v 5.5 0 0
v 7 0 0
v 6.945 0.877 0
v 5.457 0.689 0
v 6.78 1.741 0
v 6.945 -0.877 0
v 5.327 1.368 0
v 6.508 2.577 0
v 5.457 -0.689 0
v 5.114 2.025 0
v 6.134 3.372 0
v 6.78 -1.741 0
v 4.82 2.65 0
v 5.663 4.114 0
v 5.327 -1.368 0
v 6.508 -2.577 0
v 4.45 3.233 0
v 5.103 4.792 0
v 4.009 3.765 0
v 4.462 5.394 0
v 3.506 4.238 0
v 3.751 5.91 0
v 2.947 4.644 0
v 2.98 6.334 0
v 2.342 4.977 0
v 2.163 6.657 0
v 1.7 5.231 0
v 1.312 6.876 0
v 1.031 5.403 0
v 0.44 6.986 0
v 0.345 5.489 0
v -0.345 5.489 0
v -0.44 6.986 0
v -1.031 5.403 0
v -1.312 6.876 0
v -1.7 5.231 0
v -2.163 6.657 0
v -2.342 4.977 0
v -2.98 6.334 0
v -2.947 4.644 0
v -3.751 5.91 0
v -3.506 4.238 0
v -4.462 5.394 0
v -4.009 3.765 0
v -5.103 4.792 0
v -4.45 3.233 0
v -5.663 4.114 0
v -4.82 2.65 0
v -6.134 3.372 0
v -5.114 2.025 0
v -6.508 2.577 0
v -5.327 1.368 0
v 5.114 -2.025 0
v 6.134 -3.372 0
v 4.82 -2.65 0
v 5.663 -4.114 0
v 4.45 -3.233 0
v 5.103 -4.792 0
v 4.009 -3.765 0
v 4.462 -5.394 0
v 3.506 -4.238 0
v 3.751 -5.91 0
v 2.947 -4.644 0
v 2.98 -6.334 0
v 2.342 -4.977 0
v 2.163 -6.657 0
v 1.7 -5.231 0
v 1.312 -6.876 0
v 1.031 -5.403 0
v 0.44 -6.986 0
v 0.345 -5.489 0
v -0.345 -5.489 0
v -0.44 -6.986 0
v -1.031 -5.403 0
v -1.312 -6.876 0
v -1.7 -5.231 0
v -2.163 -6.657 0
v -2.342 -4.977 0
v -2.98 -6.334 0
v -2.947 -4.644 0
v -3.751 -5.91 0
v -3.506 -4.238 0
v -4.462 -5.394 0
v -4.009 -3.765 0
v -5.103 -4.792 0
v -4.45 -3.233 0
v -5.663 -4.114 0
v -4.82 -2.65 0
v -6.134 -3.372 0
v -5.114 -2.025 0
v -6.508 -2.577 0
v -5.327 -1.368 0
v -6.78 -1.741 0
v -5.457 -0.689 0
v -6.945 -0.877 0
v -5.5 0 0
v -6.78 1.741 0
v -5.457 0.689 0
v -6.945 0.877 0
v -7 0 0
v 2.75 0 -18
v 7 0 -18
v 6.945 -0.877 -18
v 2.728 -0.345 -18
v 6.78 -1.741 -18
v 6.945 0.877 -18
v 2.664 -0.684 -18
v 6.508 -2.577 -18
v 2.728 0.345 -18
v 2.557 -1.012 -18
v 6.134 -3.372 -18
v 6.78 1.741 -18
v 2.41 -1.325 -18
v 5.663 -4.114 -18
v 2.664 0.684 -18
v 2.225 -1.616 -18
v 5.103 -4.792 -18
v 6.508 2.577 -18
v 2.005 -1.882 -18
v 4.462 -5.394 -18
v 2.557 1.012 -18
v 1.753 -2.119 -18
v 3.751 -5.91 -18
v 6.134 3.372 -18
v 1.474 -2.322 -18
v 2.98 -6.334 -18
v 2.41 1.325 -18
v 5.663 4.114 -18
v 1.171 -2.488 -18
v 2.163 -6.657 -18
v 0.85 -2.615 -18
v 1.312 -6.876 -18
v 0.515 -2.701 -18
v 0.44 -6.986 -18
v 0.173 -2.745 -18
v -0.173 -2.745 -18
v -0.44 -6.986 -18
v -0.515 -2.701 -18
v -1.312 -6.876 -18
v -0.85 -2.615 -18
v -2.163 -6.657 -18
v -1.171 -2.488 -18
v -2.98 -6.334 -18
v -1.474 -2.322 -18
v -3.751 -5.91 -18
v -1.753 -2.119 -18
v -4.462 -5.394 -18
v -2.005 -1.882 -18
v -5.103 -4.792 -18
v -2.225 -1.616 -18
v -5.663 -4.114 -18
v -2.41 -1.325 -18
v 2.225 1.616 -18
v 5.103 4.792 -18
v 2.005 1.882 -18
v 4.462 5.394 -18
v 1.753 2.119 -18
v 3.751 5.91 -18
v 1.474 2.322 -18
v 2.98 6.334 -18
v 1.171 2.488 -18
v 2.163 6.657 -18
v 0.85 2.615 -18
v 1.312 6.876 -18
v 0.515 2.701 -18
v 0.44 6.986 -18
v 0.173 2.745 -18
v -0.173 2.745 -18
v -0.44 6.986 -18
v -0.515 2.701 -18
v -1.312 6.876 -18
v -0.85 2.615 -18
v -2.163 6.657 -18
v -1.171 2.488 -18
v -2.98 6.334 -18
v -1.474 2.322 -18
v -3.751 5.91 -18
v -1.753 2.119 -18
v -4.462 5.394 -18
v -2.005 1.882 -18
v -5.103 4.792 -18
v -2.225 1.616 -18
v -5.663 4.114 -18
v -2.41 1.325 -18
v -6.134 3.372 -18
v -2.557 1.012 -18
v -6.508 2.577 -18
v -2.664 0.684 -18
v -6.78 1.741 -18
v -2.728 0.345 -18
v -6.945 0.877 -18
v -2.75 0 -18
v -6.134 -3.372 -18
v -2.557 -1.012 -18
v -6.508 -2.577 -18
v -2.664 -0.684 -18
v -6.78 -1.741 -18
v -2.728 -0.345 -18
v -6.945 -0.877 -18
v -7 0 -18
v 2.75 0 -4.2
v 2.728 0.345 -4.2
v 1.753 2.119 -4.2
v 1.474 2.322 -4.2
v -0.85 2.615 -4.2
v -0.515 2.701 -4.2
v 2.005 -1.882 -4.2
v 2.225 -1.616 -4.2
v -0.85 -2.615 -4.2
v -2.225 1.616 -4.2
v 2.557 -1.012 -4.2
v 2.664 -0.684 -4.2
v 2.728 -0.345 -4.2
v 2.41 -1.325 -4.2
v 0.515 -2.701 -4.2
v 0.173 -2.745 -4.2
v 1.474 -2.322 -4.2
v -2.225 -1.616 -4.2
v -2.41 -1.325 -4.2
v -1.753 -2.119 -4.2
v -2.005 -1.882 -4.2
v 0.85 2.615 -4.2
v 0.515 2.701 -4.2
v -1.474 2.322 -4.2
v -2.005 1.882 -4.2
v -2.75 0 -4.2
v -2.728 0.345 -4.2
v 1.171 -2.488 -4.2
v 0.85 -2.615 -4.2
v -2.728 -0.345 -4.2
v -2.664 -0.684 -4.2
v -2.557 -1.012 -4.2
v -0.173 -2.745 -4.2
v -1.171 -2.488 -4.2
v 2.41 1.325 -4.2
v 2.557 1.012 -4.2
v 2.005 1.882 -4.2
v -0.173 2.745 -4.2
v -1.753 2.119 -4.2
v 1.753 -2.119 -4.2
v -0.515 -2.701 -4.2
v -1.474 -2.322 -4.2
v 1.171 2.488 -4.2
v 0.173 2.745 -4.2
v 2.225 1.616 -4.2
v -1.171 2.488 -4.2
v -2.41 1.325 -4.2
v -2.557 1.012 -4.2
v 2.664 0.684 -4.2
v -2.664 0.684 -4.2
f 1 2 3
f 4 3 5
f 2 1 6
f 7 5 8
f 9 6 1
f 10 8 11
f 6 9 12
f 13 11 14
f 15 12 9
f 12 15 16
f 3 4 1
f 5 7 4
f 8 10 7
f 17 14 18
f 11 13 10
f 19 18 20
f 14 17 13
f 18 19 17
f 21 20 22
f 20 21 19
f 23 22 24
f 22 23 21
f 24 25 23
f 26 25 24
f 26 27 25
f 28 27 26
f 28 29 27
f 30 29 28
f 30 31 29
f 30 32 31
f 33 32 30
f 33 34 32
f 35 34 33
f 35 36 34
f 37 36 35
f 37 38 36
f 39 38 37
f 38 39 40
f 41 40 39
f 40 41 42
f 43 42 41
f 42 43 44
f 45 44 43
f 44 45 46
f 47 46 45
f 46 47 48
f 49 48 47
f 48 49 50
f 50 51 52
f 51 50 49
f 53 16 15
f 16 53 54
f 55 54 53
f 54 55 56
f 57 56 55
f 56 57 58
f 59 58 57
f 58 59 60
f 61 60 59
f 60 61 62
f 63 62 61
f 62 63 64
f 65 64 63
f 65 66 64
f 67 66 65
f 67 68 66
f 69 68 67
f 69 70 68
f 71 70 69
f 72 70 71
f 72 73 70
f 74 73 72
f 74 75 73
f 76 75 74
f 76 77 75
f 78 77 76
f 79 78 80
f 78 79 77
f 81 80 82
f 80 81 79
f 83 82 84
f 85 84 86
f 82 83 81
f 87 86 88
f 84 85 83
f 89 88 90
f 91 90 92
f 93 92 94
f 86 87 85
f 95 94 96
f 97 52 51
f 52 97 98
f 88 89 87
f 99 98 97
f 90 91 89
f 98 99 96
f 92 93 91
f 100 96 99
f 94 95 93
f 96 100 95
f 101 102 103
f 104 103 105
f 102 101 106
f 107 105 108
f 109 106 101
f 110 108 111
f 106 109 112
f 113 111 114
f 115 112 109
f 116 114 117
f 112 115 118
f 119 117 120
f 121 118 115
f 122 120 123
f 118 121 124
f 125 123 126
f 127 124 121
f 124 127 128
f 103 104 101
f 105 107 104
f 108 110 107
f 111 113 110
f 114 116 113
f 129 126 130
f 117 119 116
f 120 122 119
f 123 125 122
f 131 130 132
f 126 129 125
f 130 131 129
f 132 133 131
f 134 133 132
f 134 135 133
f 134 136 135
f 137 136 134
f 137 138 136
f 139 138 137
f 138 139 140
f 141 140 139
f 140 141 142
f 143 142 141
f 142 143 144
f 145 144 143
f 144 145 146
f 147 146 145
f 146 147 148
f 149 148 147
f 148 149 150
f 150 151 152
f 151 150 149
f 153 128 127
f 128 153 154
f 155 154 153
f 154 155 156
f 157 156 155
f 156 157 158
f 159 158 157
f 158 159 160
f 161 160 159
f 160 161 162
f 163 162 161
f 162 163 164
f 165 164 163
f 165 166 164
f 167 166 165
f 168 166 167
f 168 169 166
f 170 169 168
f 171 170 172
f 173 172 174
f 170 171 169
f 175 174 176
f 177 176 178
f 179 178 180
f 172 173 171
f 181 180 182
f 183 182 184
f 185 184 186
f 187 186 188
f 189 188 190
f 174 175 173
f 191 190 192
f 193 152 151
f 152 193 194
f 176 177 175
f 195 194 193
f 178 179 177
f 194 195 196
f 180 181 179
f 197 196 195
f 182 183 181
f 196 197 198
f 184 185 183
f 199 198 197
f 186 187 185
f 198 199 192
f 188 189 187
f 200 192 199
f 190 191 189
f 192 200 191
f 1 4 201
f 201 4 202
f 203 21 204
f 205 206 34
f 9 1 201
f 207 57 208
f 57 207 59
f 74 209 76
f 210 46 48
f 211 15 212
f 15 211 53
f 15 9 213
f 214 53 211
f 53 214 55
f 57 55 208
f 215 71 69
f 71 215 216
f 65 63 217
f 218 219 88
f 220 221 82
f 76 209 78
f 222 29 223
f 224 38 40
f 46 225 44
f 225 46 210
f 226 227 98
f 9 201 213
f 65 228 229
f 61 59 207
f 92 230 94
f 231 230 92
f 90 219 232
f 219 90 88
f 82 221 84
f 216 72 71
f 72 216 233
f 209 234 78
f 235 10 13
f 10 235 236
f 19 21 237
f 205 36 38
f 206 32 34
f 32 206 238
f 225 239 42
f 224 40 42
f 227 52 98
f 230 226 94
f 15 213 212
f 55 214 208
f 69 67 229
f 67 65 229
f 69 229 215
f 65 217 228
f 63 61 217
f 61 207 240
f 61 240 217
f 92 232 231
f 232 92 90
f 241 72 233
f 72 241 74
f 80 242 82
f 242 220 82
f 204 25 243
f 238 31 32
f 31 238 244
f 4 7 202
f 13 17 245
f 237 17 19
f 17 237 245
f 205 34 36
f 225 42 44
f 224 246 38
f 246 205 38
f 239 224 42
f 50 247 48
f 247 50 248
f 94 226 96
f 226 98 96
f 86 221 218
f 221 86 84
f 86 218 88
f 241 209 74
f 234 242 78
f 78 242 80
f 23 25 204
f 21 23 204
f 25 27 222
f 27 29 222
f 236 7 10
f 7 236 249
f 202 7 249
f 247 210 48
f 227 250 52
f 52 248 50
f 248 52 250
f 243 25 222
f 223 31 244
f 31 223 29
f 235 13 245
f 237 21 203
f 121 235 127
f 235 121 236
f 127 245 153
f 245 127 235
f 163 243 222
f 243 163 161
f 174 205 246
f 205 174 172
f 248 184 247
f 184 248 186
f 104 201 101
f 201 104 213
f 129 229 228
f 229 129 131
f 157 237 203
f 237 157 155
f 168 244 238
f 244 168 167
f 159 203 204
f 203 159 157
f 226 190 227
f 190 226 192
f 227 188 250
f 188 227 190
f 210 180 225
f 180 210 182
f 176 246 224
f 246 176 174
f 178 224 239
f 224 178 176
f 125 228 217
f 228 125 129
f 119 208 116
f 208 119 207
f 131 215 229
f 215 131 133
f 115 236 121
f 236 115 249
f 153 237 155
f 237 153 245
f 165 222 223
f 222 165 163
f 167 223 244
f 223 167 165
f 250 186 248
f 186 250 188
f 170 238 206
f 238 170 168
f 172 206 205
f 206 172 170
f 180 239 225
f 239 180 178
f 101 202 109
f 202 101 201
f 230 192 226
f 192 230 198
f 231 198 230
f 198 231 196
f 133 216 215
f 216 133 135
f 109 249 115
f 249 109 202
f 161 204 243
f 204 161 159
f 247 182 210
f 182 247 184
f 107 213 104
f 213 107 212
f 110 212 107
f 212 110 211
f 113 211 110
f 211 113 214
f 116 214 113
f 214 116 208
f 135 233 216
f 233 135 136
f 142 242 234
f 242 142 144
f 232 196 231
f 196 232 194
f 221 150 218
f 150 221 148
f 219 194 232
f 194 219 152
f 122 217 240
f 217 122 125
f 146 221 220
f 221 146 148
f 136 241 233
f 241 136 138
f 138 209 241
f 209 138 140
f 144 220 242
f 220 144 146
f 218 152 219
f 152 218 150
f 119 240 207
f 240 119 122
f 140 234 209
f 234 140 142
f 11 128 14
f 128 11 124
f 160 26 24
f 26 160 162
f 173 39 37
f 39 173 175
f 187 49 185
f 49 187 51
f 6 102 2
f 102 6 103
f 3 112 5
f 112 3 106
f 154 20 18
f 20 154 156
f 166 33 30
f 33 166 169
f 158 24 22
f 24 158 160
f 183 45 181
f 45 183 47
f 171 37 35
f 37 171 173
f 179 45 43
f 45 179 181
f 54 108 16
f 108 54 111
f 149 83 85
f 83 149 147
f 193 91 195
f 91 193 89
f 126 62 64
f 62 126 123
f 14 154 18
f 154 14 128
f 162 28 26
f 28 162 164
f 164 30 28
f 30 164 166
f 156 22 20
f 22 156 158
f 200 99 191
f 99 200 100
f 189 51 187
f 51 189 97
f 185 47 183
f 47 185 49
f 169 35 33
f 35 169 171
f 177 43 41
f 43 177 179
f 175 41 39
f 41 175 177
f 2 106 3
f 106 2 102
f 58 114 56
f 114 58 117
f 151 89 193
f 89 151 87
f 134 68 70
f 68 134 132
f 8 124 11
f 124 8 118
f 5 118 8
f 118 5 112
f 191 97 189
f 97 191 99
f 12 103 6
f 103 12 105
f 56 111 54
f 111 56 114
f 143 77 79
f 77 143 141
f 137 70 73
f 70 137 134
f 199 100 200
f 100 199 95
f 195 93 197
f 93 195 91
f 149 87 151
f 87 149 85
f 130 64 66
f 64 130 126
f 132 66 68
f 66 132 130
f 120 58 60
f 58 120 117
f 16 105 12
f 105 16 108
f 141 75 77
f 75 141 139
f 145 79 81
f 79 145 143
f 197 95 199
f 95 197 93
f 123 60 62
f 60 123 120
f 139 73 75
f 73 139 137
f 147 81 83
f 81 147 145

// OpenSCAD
$fn = 50;


difference() {
	union() {
		translate(v = [0, 0, -18.0000000000]) {
			cylinder(h = 18, r = 7.0000000000);
		}
		cylinder(h = 0, r = 13.0000000000);
	}
	union() {
		translate(v = [0, 0, 0]) {
			rotate(a = [0, 0, 0]) {
				difference() {
					union() {
						#translate(v = [0, 0, -18.0000000000]) {
							cylinder(h = 18, r = 2.2500000000);
						}
						#translate(v = [0, 0, -4.2000000000]) {
							cylinder(h = 4.2000000000, r1 = 2.7500000000, r2 = 5.5000000000);
						}
						#translate(v = [0, 0, -18.0000000000]) {
							cylinder(h = 18, r = 2.7500000000);
						}
						#translate(v = [0, 0, -18.0000000000]) {
							cylinder(h = 18, r = 2.2500000000);
						}
					}
					union();
				}
			}
		}
	}
}
